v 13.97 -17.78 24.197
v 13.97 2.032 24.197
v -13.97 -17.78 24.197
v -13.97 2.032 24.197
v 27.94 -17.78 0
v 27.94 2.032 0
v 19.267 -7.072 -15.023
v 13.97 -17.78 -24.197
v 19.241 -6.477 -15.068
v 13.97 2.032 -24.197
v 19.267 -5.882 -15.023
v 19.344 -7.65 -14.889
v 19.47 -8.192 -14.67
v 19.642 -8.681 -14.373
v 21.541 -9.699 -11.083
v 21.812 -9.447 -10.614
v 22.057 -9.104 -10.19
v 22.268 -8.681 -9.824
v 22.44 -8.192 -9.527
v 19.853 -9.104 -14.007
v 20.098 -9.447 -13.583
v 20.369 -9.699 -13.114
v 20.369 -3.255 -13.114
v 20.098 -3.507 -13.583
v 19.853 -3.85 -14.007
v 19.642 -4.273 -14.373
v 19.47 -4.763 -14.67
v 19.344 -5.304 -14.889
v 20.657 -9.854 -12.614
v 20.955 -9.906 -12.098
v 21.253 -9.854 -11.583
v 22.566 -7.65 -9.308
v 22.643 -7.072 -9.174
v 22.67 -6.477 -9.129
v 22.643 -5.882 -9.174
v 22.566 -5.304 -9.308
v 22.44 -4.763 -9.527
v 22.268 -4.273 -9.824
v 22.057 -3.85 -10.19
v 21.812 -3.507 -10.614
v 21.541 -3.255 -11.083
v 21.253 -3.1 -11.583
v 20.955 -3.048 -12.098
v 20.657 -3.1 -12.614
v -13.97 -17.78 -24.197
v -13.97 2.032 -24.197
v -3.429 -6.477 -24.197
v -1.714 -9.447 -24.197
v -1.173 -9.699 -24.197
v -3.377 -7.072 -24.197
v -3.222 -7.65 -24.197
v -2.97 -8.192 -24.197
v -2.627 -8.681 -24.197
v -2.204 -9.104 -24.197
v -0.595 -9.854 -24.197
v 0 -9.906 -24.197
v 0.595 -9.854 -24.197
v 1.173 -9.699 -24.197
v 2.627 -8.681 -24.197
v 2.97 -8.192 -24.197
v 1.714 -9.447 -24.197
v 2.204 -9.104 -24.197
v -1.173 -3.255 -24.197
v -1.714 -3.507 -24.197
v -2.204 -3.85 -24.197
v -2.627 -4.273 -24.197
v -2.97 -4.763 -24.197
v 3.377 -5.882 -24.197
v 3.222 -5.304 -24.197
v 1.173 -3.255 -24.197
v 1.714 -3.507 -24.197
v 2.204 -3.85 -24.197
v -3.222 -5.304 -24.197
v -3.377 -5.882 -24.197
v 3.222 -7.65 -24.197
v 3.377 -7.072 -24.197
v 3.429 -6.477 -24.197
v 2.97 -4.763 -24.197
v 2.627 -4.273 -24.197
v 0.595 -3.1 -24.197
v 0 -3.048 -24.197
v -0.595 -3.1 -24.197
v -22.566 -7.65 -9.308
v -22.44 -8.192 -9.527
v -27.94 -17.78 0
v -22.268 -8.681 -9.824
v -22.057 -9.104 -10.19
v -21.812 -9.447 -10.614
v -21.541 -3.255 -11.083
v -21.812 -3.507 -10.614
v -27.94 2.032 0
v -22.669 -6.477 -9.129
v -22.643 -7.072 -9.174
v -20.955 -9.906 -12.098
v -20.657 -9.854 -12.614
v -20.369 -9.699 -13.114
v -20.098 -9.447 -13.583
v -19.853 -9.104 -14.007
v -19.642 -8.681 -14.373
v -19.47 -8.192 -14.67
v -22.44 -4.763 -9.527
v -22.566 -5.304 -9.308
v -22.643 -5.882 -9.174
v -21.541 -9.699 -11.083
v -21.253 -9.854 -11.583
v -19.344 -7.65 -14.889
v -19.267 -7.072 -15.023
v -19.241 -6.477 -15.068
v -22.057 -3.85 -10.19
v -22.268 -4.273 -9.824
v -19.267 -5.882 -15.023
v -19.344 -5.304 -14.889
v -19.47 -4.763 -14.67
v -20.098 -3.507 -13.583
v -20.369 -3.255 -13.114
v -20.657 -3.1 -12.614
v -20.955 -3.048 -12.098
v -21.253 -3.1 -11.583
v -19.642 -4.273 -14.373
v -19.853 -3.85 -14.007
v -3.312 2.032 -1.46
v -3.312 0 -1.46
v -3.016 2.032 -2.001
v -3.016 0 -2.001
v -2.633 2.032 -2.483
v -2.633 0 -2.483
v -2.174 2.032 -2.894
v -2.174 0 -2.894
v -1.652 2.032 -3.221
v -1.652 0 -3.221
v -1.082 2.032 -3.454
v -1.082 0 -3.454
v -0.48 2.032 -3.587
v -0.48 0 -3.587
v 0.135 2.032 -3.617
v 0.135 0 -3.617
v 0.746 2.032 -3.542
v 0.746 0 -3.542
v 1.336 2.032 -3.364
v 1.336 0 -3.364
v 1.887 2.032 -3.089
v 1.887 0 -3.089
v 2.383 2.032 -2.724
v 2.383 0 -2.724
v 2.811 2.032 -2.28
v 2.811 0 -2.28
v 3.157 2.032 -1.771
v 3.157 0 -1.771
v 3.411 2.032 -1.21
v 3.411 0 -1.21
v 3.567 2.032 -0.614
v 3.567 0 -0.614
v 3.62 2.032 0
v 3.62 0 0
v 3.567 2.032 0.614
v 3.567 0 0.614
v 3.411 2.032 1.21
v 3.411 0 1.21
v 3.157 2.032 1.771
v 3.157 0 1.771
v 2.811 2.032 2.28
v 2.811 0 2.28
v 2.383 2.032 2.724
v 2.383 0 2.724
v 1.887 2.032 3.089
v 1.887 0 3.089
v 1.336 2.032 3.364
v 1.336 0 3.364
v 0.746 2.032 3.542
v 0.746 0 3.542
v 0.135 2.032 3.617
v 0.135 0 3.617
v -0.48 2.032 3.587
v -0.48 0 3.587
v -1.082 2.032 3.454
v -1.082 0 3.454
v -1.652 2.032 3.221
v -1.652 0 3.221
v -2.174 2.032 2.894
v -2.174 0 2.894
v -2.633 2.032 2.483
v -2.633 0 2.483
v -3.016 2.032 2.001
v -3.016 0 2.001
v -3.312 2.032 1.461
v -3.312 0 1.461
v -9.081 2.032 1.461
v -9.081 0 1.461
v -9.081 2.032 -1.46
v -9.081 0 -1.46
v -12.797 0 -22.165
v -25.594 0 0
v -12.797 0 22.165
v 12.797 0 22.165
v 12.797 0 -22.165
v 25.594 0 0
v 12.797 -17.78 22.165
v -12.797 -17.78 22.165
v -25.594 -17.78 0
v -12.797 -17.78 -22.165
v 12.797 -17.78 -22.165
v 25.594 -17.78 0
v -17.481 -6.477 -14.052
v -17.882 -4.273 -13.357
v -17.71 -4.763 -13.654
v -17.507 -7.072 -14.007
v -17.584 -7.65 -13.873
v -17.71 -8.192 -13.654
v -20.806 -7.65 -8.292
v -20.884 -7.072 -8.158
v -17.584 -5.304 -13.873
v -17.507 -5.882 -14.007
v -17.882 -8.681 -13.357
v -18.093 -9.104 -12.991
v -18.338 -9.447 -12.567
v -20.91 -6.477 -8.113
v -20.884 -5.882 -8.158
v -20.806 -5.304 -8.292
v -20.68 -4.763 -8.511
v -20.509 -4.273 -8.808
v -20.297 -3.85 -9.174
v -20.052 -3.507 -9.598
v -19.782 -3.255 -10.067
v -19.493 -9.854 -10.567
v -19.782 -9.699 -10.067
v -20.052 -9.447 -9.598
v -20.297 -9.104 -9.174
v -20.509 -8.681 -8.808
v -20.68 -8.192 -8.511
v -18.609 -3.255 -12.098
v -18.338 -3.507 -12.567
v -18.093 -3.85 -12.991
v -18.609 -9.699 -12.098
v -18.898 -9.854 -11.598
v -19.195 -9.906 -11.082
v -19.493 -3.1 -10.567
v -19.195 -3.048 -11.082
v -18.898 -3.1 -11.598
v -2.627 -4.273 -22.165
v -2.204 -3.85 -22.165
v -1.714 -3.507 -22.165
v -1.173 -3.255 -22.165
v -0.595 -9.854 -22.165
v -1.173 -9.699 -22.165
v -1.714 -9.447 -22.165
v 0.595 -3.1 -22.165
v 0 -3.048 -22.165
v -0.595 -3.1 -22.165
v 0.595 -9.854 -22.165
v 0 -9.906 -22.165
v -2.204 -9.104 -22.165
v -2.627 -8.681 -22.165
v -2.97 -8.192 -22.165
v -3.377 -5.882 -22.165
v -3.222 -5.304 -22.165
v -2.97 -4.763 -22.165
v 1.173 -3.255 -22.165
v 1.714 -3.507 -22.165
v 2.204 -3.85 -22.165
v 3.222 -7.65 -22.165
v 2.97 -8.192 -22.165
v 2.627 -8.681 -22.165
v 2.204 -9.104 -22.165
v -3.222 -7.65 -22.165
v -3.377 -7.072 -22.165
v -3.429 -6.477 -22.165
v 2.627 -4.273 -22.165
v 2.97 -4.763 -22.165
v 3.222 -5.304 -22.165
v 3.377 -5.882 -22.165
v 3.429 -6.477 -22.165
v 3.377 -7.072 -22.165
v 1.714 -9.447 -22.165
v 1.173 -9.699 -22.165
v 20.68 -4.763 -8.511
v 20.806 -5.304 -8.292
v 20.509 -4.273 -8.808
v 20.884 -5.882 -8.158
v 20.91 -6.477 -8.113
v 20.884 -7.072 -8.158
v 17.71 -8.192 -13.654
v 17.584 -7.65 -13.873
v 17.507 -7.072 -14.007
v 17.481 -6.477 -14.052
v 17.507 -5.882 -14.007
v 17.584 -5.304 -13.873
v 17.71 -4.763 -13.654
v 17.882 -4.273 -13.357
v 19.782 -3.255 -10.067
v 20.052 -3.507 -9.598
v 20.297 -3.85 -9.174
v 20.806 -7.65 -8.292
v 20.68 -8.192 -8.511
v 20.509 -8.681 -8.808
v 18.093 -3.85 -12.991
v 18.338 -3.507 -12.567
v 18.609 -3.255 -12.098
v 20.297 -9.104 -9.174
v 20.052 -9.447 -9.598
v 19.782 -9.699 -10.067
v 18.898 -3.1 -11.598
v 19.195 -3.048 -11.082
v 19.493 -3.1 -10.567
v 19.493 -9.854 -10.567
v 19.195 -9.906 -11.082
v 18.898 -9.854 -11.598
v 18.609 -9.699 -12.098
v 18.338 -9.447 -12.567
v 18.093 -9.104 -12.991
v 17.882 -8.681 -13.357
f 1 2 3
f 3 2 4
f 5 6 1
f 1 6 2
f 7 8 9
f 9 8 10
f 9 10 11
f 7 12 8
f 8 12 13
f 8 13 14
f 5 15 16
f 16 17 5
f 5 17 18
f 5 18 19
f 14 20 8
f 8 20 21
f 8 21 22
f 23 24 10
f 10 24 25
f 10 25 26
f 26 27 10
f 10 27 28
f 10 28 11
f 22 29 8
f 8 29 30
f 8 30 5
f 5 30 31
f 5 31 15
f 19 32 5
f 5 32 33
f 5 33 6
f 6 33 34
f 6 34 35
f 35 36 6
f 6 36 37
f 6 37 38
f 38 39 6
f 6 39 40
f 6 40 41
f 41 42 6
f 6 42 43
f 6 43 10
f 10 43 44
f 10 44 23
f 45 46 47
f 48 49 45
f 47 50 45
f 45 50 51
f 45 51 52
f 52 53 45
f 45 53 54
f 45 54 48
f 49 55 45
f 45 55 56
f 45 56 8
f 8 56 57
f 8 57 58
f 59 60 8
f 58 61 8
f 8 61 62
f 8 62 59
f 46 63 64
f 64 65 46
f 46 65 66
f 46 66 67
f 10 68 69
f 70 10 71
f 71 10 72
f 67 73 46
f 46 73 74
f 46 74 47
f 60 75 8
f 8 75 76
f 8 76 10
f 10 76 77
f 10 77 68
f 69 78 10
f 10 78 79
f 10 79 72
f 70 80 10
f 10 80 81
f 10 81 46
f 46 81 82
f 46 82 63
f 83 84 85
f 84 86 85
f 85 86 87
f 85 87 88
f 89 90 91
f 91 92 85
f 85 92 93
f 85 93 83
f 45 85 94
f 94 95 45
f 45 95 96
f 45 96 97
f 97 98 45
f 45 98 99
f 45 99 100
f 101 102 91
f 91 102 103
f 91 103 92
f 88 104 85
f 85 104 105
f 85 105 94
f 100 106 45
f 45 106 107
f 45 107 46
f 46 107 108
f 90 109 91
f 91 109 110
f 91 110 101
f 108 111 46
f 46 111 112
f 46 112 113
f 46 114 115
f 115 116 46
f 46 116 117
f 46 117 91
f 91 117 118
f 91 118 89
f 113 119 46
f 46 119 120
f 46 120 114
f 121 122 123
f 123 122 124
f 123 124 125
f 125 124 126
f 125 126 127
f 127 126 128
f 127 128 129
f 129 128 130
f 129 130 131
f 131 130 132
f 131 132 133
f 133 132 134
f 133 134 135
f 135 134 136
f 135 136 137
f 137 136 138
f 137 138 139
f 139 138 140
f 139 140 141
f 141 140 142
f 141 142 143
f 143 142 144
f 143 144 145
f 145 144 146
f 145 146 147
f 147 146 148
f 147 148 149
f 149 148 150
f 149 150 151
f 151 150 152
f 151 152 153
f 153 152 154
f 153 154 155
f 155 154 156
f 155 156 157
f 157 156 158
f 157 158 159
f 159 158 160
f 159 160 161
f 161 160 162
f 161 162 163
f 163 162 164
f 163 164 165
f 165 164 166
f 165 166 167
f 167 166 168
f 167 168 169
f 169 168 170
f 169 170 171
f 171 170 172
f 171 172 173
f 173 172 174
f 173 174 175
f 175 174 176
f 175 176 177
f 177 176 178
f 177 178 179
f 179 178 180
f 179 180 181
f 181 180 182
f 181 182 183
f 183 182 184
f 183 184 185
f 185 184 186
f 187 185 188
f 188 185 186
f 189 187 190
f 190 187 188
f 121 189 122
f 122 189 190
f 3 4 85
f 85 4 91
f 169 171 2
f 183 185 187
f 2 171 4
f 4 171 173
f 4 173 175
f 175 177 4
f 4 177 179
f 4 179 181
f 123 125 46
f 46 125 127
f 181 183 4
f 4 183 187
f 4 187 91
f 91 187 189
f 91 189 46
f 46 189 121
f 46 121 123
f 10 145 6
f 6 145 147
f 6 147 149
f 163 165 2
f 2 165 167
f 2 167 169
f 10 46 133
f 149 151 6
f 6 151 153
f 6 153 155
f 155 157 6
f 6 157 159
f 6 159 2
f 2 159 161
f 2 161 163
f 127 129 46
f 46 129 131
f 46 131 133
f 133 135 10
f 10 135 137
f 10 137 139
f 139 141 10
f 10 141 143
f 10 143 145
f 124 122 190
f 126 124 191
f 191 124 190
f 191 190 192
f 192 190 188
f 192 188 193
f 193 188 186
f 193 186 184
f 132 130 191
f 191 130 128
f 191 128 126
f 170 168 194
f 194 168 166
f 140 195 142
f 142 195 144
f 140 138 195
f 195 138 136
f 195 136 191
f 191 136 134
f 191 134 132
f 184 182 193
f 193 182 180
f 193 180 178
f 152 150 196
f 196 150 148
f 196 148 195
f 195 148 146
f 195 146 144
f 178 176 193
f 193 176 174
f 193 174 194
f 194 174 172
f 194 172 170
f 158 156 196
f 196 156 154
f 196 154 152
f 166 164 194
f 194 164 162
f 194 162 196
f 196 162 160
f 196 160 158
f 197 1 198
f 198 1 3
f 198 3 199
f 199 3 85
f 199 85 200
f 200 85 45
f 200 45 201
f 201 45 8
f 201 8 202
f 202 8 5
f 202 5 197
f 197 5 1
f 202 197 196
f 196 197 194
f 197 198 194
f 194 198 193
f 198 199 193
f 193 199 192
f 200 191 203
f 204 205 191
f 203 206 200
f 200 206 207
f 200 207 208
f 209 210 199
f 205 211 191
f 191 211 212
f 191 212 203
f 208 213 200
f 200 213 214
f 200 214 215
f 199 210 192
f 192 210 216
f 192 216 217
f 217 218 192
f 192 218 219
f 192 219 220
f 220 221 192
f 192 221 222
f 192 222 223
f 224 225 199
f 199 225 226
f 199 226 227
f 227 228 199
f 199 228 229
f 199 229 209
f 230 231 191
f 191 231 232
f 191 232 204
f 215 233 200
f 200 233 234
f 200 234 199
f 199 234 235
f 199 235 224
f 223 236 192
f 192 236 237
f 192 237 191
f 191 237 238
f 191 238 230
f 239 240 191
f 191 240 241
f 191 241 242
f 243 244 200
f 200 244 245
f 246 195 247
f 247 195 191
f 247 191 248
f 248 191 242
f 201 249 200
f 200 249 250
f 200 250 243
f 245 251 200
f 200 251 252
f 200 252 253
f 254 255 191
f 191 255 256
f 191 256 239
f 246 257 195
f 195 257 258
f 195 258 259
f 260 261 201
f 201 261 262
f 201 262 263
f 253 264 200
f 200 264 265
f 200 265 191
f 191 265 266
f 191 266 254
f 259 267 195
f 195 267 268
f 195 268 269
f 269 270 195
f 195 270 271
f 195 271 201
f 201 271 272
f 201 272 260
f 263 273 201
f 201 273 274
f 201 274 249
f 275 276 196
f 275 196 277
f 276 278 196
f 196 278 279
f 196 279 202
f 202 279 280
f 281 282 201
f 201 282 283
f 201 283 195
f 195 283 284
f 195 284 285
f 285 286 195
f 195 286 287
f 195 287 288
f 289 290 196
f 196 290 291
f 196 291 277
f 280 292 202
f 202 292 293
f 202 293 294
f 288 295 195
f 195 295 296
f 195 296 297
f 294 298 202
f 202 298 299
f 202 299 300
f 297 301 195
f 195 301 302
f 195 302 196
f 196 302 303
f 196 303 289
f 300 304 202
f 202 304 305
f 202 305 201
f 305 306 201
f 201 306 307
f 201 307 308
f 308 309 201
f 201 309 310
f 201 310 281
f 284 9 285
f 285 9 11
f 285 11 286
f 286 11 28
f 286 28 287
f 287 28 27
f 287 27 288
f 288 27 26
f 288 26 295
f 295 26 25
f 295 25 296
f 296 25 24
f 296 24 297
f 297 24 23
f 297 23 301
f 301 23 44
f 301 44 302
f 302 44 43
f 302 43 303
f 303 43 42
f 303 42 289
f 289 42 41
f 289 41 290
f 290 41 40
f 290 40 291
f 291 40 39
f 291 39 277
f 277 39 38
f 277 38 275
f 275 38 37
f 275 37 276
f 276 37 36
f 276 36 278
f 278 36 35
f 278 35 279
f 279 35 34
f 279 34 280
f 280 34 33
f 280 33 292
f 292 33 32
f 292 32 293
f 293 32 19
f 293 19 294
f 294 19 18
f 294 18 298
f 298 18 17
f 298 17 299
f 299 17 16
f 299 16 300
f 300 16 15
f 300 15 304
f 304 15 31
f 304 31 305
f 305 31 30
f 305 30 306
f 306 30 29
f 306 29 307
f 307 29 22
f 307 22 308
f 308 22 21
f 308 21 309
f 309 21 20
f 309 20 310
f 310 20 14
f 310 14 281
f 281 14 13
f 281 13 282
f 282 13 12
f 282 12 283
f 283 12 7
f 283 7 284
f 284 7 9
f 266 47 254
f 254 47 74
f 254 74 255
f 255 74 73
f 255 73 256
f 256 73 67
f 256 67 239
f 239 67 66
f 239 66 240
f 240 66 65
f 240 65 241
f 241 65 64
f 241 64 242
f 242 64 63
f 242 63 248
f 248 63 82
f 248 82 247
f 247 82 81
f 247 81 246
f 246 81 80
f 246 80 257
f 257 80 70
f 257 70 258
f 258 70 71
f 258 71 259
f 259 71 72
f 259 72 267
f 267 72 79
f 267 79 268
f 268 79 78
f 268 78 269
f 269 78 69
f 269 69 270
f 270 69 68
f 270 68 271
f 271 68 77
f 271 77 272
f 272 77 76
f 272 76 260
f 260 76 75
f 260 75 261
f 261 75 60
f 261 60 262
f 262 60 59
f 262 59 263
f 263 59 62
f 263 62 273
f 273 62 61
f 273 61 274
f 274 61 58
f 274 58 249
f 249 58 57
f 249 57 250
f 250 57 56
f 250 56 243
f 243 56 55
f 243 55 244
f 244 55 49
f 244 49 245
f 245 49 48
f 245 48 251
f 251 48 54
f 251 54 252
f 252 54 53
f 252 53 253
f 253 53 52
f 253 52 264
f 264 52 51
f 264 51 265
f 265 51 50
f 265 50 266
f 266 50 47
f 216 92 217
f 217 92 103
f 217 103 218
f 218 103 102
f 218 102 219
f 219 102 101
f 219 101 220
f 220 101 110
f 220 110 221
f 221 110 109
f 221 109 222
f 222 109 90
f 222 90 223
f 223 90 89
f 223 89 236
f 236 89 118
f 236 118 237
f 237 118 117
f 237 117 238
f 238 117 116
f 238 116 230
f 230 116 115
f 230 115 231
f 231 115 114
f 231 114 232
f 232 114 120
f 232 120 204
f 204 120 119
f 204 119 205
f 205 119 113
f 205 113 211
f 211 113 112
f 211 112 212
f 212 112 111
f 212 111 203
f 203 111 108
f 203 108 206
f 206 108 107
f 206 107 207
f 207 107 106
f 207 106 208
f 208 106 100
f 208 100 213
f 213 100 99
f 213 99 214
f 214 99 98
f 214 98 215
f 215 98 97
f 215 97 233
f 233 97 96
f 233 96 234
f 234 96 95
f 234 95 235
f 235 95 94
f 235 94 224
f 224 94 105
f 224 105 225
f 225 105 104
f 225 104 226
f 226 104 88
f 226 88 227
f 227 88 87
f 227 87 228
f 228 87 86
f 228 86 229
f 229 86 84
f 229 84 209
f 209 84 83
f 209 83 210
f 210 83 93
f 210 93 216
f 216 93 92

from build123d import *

# Parameters (mm, degrees)
BOSS_EXTRUDE1_DEPTH = 2.032
BOSS_EXTRUDE2_DEPTH = 17.78
CUT_EXTRUDE1_REACH  = 65.436
SKETCH4_R           = 3.429
CIRPATTERN1_COUNT   = 3
CIRPATTERN1_ANGLE   = 120


with BuildPart() as part:
    # Sketch1 → Boss-Extrude1 (new body)
    with BuildSketch(Plane(origin=(0, 0, 0), x_dir=(1, 0, 0), z_dir=(0, 1, 0))):
        Polygon((13.97, -24.196749782), (27.94, 0), (13.97, 24.196749782), (-13.97, 24.196749782), (-27.94, 0), (-13.97, -24.196749782), align=None)
        with BuildLine():
            Line((-9.0805, -1.4605), (-9.0805, 1.4605))
            Line((-9.0805, 1.4605), (-3.311754822, 1.4605))
            ThreePointArc((-3.311754822, 1.4605), (0.746285358, 3.541728168), (3.6195, 0))
            ThreePointArc((3.6195, 0), (0.746285358, -3.541728168), (-3.311754822, -1.4605))
            Line((-3.311754822, -1.4605), (-9.0805, -1.4605))
        make_face(mode=Mode.SUBTRACT)
    extrude(amount=BOSS_EXTRUDE1_DEPTH)

    # Sketch2 → Boss-Extrude2 (add)
    with BuildSketch(Plane.XZ):
        Polygon((13.97, 24.196749782), (-13.97, 24.196749782), (-27.94, 0), (-13.97, -24.196749782), (13.97, -24.196749782), (27.94, 0), align=None)
        Polygon((12.796824253, 22.164749782), (-12.796824253, 22.164749782), (-25.593648506, 0), (-12.796824253, -22.164749782), (12.796824253, -22.164749782), (25.593648506, 0), align=None, mode=Mode.SUBTRACT)
    extrude(amount=BOSS_EXTRUDE2_DEPTH)

    # Sketch4 → Cut-Extrude1 (cut, up to next)
    with BuildSketch(Plane(origin=(20.955, 0, -12.098374891), x_dir=(-0.49999999999999983, 0, -0.8660254037844387), z_dir=(0.8660254037844387, 0, -0.49999999999999983)), mode=Mode.PRIVATE) as cut_extrude1_sk1:
        with Locations((0, -6.477)):
            Circle(SKETCH4_R)
    cut_extrude1_tool1 = extrude(cut_extrude1_sk1.sketch, amount=-CUT_EXTRUDE1_REACH, mode=Mode.PRIVATE) & part.part
    cut_extrude1 = cut_extrude1_tool1.solids().sort_by_distance((20.955, -6.477, -12.098375))[0]
    add(cut_extrude1, mode=Mode.SUBTRACT)

    # CirPattern1: Cut-Extrude1 ×3 about axis
    cirpattern1_axis = Axis((0, 2.7686, 0), (0, 1, 0))
    for i in range(1, CIRPATTERN1_COUNT):
        add(cut_extrude1.rotate(cirpattern1_axis, i * CIRPATTERN1_ANGLE / (CIRPATTERN1_COUNT - 1)), mode=Mode.SUBTRACT)


solid = part.part
